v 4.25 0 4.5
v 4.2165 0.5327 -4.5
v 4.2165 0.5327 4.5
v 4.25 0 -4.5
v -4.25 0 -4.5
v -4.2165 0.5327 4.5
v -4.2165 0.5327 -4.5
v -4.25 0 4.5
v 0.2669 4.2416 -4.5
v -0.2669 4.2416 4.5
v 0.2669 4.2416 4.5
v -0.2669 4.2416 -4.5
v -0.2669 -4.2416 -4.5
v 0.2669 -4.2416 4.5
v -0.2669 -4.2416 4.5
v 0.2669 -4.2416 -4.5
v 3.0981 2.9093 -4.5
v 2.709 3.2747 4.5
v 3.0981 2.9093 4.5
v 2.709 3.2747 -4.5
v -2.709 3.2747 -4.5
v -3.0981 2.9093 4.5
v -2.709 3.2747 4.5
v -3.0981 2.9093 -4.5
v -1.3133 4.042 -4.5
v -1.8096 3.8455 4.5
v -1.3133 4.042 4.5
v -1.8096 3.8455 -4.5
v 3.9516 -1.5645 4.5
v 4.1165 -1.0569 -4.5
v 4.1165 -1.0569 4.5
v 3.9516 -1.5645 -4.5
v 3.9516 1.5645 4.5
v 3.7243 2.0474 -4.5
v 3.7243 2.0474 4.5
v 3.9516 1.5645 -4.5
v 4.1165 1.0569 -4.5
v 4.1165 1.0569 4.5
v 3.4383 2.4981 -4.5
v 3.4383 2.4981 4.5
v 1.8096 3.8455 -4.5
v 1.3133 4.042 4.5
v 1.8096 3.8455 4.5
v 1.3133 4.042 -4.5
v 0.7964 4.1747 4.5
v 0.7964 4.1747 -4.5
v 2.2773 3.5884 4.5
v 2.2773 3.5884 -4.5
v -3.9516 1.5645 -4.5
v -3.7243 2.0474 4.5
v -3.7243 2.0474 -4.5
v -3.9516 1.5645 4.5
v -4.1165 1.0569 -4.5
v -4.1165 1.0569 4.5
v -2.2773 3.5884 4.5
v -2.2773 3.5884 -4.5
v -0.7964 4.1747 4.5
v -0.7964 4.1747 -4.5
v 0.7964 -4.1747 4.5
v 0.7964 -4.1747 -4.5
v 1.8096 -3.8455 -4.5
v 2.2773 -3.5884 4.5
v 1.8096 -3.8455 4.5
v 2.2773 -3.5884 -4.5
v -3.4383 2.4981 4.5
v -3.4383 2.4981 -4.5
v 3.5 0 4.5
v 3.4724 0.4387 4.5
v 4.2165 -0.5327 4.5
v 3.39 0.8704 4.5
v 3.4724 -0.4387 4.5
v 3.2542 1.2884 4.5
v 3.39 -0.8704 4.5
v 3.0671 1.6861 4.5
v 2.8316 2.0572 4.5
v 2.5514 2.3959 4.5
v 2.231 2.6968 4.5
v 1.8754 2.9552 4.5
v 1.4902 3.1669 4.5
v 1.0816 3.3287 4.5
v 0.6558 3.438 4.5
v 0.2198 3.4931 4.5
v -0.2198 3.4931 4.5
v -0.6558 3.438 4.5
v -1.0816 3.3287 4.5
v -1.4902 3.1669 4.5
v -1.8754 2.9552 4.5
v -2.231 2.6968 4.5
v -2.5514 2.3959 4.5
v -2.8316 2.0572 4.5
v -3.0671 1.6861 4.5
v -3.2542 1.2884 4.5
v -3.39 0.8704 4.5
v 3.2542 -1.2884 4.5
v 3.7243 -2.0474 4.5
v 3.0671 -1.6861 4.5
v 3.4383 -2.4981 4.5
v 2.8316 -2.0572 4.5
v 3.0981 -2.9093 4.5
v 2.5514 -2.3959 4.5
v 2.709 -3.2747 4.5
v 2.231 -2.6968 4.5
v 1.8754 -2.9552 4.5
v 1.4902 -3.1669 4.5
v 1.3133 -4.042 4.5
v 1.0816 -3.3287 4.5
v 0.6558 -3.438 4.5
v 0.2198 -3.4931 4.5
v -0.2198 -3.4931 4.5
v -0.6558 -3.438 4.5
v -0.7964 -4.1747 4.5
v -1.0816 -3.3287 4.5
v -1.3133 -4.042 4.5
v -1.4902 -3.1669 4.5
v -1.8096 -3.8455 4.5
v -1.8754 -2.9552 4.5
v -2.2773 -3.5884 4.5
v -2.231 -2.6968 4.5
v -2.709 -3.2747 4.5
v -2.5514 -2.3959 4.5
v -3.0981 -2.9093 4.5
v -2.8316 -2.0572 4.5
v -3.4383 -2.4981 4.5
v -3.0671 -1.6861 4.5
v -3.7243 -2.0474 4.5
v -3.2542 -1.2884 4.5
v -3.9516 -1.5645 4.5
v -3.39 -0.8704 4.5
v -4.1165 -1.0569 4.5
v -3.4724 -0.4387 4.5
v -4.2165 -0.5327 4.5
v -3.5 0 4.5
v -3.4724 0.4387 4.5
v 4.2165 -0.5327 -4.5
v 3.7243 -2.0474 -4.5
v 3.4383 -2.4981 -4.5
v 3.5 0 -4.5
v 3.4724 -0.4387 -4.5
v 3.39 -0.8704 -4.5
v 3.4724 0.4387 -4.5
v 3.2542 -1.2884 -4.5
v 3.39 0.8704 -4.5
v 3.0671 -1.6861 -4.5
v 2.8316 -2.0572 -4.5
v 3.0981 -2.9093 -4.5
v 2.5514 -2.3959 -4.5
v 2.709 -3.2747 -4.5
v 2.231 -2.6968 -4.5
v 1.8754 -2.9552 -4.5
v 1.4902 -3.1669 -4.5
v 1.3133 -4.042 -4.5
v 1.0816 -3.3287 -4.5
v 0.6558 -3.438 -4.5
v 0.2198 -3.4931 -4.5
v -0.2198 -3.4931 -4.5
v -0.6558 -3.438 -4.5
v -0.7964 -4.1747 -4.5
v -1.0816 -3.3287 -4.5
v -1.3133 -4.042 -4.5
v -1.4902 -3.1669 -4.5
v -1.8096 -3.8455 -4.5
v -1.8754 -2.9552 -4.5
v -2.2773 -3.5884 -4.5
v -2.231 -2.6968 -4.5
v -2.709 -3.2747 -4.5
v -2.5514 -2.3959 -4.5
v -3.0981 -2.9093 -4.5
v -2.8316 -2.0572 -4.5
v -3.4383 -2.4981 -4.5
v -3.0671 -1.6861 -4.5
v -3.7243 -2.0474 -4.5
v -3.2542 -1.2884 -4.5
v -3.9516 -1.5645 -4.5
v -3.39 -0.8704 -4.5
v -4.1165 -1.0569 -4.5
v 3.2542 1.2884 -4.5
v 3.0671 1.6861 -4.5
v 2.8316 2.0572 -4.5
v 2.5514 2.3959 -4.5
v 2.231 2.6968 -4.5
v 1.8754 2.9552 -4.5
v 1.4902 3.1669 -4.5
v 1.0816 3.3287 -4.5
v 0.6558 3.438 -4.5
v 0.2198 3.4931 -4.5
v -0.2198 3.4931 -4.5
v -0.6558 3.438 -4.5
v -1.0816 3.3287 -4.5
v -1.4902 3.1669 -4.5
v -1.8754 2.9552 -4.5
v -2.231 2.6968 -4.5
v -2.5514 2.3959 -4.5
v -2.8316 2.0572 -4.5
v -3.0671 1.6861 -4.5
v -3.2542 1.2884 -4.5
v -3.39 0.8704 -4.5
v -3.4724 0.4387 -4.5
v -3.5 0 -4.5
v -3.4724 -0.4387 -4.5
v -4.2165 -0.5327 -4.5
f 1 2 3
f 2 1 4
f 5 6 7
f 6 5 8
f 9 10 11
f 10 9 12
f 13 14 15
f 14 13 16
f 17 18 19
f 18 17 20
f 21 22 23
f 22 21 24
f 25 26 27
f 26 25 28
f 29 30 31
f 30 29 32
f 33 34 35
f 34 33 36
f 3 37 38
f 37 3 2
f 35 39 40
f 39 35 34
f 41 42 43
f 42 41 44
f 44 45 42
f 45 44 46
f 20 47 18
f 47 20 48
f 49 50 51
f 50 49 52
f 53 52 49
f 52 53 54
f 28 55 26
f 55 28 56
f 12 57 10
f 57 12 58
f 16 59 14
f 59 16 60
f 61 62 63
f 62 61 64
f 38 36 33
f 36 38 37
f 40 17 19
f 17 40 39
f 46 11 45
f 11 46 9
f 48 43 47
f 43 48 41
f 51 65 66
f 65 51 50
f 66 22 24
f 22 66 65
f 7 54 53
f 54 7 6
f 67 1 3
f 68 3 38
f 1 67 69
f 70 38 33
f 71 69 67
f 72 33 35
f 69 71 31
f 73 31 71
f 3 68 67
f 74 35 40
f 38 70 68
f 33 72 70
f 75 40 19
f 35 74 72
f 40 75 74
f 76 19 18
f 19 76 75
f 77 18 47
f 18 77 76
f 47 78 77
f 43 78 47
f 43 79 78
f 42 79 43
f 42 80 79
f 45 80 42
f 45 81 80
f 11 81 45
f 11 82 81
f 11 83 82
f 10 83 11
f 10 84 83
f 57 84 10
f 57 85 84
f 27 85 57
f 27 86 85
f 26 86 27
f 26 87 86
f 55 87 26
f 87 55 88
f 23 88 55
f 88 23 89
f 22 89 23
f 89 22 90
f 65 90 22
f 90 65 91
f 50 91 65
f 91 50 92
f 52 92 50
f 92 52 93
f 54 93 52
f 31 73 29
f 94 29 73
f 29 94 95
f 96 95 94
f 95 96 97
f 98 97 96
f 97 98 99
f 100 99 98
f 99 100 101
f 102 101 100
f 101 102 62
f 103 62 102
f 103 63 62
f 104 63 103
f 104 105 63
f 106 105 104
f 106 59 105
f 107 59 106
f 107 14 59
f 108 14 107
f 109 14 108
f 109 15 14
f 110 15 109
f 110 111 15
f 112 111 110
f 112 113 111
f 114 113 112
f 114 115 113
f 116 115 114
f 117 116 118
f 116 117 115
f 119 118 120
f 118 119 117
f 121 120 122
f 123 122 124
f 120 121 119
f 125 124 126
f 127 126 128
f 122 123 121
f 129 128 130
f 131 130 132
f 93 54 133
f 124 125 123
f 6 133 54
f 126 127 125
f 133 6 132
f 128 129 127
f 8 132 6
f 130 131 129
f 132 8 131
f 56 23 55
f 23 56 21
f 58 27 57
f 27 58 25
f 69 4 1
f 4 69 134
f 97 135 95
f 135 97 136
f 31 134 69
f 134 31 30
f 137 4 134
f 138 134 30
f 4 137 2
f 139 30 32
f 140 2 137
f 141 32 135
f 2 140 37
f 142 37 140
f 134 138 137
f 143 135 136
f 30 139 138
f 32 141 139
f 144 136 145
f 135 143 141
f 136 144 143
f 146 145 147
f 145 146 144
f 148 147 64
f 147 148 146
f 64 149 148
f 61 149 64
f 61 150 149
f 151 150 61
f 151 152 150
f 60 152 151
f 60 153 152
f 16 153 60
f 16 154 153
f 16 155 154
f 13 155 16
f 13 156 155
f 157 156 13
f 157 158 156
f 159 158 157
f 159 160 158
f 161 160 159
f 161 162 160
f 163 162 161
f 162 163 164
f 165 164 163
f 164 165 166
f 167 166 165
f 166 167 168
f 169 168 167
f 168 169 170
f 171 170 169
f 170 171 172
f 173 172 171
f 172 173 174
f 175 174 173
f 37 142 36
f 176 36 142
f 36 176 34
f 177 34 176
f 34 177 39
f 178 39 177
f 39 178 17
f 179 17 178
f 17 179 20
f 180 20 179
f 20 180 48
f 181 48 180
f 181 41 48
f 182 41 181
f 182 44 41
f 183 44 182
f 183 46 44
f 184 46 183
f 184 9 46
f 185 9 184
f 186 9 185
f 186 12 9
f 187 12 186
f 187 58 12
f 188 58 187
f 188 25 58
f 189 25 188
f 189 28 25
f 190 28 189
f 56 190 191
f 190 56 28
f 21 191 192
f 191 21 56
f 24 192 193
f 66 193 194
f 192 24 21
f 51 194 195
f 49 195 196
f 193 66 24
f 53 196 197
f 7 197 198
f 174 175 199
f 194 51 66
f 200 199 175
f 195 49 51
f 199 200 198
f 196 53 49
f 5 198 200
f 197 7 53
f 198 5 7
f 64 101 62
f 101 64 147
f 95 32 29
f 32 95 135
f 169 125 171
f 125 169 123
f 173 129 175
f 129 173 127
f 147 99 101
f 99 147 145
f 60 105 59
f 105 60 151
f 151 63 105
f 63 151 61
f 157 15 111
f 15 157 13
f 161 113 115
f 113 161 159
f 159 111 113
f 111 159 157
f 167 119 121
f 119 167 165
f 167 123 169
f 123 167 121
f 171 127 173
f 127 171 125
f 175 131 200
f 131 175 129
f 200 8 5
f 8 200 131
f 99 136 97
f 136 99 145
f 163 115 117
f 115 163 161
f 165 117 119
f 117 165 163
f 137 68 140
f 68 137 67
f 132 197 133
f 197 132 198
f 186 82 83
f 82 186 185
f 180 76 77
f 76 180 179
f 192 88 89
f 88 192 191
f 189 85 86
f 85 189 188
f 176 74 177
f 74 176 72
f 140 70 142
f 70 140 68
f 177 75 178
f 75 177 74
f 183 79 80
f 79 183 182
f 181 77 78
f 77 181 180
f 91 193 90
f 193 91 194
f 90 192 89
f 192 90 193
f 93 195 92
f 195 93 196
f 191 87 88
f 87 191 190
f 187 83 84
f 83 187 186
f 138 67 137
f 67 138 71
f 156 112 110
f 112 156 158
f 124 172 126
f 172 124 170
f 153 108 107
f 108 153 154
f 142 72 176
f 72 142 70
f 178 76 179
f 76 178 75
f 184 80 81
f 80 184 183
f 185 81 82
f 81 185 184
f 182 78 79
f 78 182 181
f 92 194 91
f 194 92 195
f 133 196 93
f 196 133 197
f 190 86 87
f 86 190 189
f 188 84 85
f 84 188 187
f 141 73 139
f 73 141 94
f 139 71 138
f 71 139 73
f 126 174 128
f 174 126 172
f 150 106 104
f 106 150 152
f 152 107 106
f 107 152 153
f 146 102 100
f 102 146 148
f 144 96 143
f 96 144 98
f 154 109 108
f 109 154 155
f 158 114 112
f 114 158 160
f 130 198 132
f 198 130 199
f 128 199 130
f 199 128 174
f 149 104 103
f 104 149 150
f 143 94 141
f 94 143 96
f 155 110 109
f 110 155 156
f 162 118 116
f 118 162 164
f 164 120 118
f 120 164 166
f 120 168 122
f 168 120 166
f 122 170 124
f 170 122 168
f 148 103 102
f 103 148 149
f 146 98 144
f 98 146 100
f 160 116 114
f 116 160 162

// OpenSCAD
$fn = 50;


difference() {
	union() {
		translate(v = [0, 0, -4.5000000000]) {
			cylinder(h = 9, r = 4.2500000000);
		}
	}
	union() {
		translate(v = [0, 0, -100.0000000000]) {
			cylinder(h = 200, r = 3.5000000000);
		}
	}
}
